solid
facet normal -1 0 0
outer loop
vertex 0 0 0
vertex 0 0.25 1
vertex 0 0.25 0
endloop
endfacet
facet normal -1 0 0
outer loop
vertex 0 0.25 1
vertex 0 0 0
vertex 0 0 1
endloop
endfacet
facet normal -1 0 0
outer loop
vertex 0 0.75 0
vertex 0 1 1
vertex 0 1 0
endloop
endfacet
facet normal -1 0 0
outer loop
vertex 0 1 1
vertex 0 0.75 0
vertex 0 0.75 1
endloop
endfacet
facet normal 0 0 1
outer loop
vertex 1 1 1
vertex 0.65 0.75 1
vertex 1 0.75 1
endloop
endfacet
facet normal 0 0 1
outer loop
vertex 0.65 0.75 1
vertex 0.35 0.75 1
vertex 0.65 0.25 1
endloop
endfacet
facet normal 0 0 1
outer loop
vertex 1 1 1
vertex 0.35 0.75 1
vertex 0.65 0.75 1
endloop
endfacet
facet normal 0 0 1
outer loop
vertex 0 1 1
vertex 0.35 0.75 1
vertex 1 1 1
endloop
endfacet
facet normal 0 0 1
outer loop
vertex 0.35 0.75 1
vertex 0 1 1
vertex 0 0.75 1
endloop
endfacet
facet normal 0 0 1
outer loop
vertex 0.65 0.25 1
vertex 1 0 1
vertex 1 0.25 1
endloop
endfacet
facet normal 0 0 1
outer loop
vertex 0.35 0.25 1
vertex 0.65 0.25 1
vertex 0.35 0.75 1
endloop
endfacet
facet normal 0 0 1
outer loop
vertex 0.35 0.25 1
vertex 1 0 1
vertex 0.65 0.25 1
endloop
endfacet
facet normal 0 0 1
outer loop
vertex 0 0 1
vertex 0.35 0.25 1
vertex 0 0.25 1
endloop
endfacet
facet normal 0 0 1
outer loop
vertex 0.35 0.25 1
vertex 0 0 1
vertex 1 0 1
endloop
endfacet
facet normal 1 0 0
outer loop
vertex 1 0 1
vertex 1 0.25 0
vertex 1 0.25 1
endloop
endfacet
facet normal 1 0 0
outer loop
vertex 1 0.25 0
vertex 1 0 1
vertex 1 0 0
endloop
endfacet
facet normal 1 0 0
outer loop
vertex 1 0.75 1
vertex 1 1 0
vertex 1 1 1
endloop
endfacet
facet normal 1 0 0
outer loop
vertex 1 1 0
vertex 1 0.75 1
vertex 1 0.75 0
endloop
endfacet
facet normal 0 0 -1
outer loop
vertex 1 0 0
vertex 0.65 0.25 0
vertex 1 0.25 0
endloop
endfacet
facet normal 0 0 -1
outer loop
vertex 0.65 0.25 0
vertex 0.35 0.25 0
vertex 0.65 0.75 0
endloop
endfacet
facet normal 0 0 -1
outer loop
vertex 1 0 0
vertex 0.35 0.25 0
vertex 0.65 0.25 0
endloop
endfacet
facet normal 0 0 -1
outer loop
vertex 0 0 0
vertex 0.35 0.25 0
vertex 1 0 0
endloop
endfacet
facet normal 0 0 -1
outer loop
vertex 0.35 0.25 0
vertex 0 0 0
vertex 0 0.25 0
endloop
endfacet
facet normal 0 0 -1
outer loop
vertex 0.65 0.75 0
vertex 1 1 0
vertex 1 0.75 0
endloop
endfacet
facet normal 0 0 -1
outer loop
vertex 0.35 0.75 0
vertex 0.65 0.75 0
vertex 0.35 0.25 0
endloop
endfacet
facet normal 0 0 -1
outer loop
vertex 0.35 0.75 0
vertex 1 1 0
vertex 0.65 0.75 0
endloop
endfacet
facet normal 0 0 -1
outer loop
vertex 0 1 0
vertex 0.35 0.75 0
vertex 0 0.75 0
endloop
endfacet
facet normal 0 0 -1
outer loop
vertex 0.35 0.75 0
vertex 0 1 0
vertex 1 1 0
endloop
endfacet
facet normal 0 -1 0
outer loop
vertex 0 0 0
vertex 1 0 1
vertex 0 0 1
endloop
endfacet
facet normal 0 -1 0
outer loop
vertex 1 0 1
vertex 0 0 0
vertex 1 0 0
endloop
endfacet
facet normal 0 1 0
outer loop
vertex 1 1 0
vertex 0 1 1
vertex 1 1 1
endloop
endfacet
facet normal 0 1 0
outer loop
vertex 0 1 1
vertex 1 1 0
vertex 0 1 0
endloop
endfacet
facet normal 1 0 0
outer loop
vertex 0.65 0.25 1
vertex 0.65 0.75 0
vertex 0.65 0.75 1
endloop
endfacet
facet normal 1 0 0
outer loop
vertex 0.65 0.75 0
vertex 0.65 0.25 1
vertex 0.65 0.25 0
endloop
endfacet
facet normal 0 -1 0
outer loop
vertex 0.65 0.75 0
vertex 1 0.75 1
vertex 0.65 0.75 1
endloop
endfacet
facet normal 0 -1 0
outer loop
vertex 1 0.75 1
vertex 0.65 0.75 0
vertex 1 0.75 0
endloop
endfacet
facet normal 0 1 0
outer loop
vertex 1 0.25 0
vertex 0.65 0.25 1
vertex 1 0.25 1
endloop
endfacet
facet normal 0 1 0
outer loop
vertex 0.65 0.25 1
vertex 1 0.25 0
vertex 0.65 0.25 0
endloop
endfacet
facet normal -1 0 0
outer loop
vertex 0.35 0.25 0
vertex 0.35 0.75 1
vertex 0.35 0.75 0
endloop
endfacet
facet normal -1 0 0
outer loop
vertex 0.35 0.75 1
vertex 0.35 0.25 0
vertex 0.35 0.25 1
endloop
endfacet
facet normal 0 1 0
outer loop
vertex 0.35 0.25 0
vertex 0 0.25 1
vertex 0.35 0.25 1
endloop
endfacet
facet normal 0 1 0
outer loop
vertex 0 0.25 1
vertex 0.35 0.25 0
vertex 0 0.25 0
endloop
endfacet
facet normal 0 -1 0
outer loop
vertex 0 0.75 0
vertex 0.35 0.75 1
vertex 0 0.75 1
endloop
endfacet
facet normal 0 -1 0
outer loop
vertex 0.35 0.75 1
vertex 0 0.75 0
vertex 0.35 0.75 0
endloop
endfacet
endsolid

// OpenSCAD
difference() {
  translate([0.5000000000, 0.5000000000, 0.5000000000]) {
    translate([-0.5000000000, -0.5000000000, -0.5000000000]) {
      cube([1, 1, 1]);
    }
  }
  union() {
    difference() {
      translate([0.1749995000, 0.5000000000, 0.5000000000]) {
        scale([0.3500000000, 0.5000000000, 1.0000000000]) {
          translate([-0.5000000000, -0.5000000000, -0.5000000000]) {
            cube([1, 1, 1]);
          }
        }
      }
      /* EMPTY */ sphere(r = 0);
    }
    difference() {
      translate([0.8250000000, 0.5000000000, 0.5000000000]) {
        scale([0.3500000000, 0.5000000000, 1.0000000000]) {
          translate([-0.5000000000, -0.5000000000, -0.5000000000]) {
            cube([1, 1, 1]);
          }
        }
      }
      /* EMPTY */ sphere(r = 0);
    }
  }
}
